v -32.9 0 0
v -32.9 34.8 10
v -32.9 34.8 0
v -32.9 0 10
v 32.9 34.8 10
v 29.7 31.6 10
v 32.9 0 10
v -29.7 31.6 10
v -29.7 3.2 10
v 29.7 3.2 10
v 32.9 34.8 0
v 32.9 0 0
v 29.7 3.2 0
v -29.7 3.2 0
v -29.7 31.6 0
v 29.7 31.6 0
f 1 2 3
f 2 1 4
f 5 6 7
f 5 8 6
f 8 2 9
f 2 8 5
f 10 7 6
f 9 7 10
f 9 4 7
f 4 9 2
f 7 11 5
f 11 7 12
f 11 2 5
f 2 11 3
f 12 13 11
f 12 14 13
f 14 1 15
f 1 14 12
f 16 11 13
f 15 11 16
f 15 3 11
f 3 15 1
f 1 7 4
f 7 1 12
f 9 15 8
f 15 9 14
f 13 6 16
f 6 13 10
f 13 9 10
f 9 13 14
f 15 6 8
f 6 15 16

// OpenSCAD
// Fit test for gc03_stand.scad: just the opening of the dock as a 10 mm ring, about 6 g. Print it first, push the metal end of the
// GC-03 into it; it should go in with a little play and not rock. Keep dev_w, dev_t and clr equal to gc03_stand.scad.
dev_w = 58;
dev_t = 27;
clr = 0.7;
wall = 3.2;
difference() {
    translate([-(dev_w + 2 * clr) / 2 - wall, 0, 0]) cube([dev_w + 2 * clr + 2 * wall, dev_t + 2 * clr + 2 * wall, 10]);
    translate([-(dev_w + 2 * clr) / 2, wall, -1]) cube([dev_w + 2 * clr, dev_t + 2 * clr, 12]);
}
